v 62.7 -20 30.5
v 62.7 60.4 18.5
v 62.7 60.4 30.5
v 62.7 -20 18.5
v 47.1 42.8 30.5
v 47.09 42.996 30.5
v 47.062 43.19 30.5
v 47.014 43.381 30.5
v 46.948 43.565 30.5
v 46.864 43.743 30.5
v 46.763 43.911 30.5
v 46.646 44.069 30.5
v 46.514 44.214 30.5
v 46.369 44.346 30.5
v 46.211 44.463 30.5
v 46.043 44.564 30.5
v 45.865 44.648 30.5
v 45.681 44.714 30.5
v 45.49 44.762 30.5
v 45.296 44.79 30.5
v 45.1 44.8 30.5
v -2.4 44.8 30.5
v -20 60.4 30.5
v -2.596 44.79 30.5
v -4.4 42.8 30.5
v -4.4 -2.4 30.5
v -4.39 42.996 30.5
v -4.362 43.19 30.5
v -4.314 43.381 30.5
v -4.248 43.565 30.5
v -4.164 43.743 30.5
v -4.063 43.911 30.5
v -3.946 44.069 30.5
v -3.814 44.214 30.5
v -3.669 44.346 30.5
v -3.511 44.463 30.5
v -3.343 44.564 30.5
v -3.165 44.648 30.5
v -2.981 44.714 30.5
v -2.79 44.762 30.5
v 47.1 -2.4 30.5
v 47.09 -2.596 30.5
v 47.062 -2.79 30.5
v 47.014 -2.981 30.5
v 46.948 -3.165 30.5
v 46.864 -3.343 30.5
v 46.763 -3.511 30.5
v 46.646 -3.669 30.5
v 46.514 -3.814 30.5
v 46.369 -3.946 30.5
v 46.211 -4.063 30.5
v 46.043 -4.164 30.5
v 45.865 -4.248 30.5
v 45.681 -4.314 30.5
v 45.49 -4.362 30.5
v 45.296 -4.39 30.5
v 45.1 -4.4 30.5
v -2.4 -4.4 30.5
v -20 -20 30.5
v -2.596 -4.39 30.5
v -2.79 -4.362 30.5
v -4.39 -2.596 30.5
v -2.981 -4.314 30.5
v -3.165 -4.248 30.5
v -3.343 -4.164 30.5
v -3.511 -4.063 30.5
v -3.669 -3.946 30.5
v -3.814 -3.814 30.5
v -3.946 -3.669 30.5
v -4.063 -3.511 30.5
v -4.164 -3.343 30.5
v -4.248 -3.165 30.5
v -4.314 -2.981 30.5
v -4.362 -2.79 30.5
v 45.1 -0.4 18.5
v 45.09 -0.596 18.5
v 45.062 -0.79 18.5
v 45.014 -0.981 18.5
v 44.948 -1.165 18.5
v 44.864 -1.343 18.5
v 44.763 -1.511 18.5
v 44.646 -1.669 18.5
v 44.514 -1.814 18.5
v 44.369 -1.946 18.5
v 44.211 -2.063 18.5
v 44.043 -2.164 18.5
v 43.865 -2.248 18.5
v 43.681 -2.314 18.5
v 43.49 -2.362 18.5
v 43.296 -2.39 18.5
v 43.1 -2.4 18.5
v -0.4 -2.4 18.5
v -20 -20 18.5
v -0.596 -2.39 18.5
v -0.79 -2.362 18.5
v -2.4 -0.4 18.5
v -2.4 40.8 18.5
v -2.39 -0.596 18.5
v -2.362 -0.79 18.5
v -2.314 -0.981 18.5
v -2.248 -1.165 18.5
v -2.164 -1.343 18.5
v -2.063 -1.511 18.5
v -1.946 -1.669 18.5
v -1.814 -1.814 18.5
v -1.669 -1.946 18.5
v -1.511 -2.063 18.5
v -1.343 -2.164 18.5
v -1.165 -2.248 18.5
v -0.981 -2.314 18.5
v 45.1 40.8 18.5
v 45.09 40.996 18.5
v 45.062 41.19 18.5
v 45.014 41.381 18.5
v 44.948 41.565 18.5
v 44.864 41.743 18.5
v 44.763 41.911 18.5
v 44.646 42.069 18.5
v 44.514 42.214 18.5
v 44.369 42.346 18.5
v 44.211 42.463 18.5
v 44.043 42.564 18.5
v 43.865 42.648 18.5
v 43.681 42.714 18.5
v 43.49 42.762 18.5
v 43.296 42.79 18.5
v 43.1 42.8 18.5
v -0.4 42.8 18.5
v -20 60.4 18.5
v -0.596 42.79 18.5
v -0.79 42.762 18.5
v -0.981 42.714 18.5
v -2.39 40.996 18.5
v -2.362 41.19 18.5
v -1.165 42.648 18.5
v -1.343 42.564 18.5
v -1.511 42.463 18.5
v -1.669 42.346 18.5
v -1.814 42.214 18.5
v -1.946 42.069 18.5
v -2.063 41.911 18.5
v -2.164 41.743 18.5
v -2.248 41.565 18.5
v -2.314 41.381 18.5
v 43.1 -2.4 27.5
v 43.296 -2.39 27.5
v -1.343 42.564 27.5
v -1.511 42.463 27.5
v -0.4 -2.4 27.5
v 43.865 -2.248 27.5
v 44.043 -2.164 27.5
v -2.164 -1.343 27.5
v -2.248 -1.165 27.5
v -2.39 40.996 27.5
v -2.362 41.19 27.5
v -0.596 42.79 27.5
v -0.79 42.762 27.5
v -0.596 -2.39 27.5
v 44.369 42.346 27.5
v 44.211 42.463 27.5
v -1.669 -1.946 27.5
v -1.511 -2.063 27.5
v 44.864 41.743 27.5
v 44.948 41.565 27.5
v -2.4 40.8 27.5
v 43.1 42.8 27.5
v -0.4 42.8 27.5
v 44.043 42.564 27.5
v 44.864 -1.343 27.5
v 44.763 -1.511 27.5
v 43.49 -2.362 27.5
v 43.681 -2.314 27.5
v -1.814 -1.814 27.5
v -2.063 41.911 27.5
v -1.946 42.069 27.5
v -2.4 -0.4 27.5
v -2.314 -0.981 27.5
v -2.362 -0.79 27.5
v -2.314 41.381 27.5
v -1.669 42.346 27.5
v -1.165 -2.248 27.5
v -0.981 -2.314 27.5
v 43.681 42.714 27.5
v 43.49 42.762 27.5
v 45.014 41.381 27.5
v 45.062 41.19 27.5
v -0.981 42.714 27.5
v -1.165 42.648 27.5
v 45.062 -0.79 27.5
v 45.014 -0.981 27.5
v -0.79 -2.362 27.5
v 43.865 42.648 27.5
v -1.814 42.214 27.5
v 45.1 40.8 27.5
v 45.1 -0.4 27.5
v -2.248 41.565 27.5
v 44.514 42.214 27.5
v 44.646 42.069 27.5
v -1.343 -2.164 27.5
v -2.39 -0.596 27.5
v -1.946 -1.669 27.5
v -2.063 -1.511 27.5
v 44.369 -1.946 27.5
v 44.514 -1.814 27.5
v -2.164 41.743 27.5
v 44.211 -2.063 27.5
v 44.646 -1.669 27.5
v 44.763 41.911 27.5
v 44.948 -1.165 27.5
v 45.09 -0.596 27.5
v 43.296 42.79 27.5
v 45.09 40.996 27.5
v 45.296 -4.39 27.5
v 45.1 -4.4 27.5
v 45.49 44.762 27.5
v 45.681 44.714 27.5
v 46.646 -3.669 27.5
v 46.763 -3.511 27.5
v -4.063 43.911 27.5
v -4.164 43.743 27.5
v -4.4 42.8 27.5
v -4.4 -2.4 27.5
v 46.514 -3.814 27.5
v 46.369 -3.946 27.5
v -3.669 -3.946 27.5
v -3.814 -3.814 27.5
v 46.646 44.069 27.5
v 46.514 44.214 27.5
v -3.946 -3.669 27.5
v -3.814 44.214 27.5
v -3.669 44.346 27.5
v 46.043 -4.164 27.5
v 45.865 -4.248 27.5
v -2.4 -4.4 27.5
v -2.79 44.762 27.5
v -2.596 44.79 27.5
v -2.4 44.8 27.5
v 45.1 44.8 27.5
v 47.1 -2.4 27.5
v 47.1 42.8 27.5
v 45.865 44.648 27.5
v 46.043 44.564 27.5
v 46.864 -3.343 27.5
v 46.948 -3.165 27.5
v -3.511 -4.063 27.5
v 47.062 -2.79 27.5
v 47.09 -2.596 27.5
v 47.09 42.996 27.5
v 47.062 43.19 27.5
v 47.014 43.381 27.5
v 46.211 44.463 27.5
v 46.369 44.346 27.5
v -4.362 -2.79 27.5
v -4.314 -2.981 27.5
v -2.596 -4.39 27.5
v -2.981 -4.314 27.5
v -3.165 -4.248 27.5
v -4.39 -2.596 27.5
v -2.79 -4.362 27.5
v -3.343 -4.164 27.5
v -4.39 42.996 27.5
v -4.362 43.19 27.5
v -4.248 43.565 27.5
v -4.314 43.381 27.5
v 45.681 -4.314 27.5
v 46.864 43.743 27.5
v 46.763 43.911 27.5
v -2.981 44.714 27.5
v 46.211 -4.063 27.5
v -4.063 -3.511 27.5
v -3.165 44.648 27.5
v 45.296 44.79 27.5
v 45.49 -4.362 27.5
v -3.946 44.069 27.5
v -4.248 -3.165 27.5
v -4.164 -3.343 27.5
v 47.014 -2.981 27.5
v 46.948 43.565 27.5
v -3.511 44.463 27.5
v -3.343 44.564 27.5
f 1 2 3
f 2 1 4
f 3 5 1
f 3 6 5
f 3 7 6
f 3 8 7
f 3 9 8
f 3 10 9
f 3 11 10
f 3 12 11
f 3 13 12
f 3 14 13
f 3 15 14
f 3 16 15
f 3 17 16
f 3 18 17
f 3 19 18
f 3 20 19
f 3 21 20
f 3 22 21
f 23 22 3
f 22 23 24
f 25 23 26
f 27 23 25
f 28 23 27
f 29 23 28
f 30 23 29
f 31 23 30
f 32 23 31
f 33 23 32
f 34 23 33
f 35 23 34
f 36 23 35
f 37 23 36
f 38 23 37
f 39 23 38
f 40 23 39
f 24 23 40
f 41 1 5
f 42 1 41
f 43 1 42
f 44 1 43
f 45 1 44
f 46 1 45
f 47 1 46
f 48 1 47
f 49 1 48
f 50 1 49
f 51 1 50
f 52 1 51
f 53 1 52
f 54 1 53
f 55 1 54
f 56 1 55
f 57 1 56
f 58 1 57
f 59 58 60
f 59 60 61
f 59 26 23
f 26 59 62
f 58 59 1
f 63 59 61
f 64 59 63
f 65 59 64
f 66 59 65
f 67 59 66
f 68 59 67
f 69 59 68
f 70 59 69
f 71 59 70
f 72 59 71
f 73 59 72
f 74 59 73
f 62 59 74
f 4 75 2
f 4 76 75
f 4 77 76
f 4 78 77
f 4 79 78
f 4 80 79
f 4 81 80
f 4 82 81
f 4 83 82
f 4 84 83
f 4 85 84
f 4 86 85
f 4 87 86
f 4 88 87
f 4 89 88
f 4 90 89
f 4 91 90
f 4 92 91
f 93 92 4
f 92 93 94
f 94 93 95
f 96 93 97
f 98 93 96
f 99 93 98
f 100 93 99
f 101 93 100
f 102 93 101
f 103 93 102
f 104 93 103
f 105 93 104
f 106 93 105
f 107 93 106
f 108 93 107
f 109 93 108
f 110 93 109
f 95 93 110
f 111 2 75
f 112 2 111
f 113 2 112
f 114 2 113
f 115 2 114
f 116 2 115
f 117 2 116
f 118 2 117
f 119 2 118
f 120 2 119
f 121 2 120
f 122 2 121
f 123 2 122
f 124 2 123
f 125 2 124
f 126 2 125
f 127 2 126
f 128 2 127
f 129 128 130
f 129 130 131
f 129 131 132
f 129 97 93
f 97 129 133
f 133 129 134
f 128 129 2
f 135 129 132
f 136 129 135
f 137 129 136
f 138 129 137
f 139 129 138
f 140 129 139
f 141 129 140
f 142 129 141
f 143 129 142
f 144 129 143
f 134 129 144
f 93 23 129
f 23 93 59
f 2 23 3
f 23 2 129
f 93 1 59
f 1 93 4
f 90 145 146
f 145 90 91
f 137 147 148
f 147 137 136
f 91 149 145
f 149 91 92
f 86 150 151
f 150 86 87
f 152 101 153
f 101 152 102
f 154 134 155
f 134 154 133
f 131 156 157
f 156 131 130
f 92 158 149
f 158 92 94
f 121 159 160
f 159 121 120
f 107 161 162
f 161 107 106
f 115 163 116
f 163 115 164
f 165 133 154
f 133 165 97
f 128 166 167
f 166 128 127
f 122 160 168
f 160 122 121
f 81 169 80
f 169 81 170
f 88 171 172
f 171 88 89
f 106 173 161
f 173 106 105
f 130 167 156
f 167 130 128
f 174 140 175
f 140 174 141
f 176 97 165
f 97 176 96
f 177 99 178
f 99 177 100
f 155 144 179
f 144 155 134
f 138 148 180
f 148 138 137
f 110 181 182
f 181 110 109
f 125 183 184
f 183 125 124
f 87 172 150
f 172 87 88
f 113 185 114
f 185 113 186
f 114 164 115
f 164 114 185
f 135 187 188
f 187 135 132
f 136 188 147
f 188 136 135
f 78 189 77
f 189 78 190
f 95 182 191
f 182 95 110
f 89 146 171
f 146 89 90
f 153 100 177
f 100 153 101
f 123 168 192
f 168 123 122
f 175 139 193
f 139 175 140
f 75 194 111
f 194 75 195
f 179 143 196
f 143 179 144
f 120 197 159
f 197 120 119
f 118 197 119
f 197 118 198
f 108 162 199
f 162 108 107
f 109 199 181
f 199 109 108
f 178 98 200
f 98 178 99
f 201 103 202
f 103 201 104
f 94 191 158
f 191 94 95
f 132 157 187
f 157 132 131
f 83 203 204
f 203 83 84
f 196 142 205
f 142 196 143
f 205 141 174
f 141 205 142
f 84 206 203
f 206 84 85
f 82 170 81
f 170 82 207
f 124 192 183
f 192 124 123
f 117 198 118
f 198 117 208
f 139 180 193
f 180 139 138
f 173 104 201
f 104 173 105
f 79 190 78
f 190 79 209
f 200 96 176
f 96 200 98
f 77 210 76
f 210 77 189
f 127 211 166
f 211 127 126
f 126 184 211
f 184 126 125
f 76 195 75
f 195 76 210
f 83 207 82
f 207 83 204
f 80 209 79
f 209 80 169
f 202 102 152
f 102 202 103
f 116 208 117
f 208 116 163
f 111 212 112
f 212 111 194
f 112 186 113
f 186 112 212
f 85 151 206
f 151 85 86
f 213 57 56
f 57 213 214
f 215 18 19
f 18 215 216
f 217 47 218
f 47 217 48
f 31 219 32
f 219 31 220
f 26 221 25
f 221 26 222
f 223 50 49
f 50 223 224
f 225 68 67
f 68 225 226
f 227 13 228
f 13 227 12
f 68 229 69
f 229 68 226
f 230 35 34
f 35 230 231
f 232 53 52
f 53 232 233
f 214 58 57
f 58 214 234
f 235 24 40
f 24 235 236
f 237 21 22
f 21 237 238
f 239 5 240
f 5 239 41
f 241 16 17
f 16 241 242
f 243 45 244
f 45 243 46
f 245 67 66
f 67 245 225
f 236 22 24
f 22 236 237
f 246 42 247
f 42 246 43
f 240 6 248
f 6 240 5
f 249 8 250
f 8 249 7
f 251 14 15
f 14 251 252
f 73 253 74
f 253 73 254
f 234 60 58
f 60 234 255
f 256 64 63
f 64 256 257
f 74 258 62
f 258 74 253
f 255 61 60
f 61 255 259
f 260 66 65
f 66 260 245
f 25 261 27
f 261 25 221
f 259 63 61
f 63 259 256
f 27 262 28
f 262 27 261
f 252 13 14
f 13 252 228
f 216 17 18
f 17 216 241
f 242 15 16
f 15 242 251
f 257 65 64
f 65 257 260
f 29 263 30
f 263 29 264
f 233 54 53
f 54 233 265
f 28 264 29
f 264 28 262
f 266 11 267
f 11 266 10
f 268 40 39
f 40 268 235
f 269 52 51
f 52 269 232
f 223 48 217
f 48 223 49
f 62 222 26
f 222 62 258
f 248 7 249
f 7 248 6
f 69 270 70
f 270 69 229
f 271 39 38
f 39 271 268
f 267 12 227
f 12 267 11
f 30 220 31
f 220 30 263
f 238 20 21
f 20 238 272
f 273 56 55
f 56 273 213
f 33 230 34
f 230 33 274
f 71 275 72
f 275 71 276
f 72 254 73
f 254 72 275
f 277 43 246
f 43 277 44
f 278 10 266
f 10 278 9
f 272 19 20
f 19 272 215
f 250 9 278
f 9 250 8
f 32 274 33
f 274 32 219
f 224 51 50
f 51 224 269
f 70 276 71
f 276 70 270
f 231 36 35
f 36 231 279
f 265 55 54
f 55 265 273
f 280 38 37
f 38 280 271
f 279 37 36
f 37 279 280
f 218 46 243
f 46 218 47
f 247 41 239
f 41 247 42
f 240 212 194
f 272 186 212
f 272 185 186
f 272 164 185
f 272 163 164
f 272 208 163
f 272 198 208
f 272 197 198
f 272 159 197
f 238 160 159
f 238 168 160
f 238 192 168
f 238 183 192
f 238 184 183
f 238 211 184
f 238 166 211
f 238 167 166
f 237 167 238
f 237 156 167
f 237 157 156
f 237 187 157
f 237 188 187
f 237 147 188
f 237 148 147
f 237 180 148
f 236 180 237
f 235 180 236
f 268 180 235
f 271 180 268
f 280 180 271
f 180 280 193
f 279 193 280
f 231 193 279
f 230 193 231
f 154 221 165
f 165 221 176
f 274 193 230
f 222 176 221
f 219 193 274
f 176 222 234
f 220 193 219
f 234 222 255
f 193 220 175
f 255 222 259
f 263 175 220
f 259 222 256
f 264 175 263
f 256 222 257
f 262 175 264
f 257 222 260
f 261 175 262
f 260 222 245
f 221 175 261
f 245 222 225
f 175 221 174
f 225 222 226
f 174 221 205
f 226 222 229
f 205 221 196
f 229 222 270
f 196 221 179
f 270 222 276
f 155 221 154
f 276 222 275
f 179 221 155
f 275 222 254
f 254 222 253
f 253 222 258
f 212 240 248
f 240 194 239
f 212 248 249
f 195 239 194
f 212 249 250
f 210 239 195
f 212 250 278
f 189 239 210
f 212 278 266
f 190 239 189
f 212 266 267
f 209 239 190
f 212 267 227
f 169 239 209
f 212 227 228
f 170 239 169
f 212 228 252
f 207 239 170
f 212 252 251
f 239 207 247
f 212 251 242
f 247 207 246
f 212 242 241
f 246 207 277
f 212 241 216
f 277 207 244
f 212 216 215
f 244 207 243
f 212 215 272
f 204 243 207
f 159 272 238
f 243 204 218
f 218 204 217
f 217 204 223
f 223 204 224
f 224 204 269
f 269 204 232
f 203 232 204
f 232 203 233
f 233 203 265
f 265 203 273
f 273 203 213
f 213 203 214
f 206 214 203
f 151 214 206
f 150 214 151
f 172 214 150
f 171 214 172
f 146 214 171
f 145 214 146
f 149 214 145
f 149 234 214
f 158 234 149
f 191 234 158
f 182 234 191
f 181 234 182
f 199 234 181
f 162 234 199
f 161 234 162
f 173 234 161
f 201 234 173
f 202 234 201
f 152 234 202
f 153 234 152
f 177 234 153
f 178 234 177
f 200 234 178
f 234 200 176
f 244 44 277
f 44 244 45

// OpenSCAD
// file: geometry.scad
// Elechouse V3 drawing, page 2; user accepts basis, real PN532-MOD unverified.
// SAME orientation as drawing. Origin bottom left; +x right, +y up/rear, +z outside.
pcb_w=42.7; pcb_d=40.4;
board_holes=[[7.4,7.6],[35.2,32.8]];
pcb_t=1.6; // ASSUMED
pcb_hole_d=2.5; // ASSUMED! Not dimensioned in drawing. M2 proposed, verify.
wood_z=18.5; wood_h=12; glass_h=3;
rf_gap=2; // proposed PCB outer surface -> glass, NOT tested NFC range
board_z=wood_z+wood_h-glass_h-rf_gap-pcb_t; //23.9
opening=[-2.4,-2.4,47.5,45.2];
rebate=[-4.4,-4.4,51.5,49.2];
corner_r=2; fit=0.2; guide_wall=1.5; guide_h=4.5;
lead_in=0.4; lead_h=0.6;
wood_points=[[21.35,-10],[21.35,50.4]];
base_h=2; tab_h=3.5; wood_d=3.2; head_d=6.2;
wood_screw_l=12;
post_d=8; neck_d=4.6; post_top=14;
m2_clear=2.3; nut_af=4.2; nut_pocket_h=3.5; nut_h=1.6;
m2_length=25; pcb_head_d=4; head_h=1.5; // head max height, check actual hardware
support_xy=[[3,37.4],[39.7,3]]; // assumed empty PCB edge on component side
// Large central electronics envelope on INWARD side; no measured component map.
components_rect=[10,9,23,22]; components_h=5;
// Four inward-facing I2C female housings, axis parallel z, on left of drawing.
// Coordinates/housing height/bends are ASSUMED, not extracted PCB pads.
connector_rect=[0.5,11,4,12]; connector_h=16;
assert(abs(board_z-23.9)<0.001);
assert(board_z-connector_h>base_h);
assert(rf_gap-head_h>=0.5);
assert((post_d-nut_af/cos(30))/2>=1.5);
assert(tab_h-(head_d-wood_d)/2>=2);
module profile(r,rad=2,inset=0){
    translate([r[0]+rad,r[1]+rad]) offset(r=rad-inset) square([r[2]-2*rad,r[3]-2*rad]);
}
module opening_profile(inset=0){profile(opening,corner_r,inset);}
module rebate_profile(inset=0){profile(rebate,corner_r,inset);}
// main file
include <geometry.scad>
$fn=64; part="panel";
module panel(){difference(){
    translate([-20,-20,wood_z])cube([82.7,80.4,wood_h]);
    translate([0,0,wood_z-0.1])linear_extrude(wood_h+0.2)opening_profile();
    translate([0,0,wood_z+wood_h-glass_h])linear_extrude(glass_h+0.1)rebate_profile();
}}
module glass(){translate([0,0,wood_z+wood_h-glass_h])linear_extrude(glass_h)rebate_profile(0.2);}
if(part=="panel")panel();
if(part=="opening")opening_profile();
if(part=="rebate")rebate_profile();
if(part=="glass")rebate_profile(0.2);
